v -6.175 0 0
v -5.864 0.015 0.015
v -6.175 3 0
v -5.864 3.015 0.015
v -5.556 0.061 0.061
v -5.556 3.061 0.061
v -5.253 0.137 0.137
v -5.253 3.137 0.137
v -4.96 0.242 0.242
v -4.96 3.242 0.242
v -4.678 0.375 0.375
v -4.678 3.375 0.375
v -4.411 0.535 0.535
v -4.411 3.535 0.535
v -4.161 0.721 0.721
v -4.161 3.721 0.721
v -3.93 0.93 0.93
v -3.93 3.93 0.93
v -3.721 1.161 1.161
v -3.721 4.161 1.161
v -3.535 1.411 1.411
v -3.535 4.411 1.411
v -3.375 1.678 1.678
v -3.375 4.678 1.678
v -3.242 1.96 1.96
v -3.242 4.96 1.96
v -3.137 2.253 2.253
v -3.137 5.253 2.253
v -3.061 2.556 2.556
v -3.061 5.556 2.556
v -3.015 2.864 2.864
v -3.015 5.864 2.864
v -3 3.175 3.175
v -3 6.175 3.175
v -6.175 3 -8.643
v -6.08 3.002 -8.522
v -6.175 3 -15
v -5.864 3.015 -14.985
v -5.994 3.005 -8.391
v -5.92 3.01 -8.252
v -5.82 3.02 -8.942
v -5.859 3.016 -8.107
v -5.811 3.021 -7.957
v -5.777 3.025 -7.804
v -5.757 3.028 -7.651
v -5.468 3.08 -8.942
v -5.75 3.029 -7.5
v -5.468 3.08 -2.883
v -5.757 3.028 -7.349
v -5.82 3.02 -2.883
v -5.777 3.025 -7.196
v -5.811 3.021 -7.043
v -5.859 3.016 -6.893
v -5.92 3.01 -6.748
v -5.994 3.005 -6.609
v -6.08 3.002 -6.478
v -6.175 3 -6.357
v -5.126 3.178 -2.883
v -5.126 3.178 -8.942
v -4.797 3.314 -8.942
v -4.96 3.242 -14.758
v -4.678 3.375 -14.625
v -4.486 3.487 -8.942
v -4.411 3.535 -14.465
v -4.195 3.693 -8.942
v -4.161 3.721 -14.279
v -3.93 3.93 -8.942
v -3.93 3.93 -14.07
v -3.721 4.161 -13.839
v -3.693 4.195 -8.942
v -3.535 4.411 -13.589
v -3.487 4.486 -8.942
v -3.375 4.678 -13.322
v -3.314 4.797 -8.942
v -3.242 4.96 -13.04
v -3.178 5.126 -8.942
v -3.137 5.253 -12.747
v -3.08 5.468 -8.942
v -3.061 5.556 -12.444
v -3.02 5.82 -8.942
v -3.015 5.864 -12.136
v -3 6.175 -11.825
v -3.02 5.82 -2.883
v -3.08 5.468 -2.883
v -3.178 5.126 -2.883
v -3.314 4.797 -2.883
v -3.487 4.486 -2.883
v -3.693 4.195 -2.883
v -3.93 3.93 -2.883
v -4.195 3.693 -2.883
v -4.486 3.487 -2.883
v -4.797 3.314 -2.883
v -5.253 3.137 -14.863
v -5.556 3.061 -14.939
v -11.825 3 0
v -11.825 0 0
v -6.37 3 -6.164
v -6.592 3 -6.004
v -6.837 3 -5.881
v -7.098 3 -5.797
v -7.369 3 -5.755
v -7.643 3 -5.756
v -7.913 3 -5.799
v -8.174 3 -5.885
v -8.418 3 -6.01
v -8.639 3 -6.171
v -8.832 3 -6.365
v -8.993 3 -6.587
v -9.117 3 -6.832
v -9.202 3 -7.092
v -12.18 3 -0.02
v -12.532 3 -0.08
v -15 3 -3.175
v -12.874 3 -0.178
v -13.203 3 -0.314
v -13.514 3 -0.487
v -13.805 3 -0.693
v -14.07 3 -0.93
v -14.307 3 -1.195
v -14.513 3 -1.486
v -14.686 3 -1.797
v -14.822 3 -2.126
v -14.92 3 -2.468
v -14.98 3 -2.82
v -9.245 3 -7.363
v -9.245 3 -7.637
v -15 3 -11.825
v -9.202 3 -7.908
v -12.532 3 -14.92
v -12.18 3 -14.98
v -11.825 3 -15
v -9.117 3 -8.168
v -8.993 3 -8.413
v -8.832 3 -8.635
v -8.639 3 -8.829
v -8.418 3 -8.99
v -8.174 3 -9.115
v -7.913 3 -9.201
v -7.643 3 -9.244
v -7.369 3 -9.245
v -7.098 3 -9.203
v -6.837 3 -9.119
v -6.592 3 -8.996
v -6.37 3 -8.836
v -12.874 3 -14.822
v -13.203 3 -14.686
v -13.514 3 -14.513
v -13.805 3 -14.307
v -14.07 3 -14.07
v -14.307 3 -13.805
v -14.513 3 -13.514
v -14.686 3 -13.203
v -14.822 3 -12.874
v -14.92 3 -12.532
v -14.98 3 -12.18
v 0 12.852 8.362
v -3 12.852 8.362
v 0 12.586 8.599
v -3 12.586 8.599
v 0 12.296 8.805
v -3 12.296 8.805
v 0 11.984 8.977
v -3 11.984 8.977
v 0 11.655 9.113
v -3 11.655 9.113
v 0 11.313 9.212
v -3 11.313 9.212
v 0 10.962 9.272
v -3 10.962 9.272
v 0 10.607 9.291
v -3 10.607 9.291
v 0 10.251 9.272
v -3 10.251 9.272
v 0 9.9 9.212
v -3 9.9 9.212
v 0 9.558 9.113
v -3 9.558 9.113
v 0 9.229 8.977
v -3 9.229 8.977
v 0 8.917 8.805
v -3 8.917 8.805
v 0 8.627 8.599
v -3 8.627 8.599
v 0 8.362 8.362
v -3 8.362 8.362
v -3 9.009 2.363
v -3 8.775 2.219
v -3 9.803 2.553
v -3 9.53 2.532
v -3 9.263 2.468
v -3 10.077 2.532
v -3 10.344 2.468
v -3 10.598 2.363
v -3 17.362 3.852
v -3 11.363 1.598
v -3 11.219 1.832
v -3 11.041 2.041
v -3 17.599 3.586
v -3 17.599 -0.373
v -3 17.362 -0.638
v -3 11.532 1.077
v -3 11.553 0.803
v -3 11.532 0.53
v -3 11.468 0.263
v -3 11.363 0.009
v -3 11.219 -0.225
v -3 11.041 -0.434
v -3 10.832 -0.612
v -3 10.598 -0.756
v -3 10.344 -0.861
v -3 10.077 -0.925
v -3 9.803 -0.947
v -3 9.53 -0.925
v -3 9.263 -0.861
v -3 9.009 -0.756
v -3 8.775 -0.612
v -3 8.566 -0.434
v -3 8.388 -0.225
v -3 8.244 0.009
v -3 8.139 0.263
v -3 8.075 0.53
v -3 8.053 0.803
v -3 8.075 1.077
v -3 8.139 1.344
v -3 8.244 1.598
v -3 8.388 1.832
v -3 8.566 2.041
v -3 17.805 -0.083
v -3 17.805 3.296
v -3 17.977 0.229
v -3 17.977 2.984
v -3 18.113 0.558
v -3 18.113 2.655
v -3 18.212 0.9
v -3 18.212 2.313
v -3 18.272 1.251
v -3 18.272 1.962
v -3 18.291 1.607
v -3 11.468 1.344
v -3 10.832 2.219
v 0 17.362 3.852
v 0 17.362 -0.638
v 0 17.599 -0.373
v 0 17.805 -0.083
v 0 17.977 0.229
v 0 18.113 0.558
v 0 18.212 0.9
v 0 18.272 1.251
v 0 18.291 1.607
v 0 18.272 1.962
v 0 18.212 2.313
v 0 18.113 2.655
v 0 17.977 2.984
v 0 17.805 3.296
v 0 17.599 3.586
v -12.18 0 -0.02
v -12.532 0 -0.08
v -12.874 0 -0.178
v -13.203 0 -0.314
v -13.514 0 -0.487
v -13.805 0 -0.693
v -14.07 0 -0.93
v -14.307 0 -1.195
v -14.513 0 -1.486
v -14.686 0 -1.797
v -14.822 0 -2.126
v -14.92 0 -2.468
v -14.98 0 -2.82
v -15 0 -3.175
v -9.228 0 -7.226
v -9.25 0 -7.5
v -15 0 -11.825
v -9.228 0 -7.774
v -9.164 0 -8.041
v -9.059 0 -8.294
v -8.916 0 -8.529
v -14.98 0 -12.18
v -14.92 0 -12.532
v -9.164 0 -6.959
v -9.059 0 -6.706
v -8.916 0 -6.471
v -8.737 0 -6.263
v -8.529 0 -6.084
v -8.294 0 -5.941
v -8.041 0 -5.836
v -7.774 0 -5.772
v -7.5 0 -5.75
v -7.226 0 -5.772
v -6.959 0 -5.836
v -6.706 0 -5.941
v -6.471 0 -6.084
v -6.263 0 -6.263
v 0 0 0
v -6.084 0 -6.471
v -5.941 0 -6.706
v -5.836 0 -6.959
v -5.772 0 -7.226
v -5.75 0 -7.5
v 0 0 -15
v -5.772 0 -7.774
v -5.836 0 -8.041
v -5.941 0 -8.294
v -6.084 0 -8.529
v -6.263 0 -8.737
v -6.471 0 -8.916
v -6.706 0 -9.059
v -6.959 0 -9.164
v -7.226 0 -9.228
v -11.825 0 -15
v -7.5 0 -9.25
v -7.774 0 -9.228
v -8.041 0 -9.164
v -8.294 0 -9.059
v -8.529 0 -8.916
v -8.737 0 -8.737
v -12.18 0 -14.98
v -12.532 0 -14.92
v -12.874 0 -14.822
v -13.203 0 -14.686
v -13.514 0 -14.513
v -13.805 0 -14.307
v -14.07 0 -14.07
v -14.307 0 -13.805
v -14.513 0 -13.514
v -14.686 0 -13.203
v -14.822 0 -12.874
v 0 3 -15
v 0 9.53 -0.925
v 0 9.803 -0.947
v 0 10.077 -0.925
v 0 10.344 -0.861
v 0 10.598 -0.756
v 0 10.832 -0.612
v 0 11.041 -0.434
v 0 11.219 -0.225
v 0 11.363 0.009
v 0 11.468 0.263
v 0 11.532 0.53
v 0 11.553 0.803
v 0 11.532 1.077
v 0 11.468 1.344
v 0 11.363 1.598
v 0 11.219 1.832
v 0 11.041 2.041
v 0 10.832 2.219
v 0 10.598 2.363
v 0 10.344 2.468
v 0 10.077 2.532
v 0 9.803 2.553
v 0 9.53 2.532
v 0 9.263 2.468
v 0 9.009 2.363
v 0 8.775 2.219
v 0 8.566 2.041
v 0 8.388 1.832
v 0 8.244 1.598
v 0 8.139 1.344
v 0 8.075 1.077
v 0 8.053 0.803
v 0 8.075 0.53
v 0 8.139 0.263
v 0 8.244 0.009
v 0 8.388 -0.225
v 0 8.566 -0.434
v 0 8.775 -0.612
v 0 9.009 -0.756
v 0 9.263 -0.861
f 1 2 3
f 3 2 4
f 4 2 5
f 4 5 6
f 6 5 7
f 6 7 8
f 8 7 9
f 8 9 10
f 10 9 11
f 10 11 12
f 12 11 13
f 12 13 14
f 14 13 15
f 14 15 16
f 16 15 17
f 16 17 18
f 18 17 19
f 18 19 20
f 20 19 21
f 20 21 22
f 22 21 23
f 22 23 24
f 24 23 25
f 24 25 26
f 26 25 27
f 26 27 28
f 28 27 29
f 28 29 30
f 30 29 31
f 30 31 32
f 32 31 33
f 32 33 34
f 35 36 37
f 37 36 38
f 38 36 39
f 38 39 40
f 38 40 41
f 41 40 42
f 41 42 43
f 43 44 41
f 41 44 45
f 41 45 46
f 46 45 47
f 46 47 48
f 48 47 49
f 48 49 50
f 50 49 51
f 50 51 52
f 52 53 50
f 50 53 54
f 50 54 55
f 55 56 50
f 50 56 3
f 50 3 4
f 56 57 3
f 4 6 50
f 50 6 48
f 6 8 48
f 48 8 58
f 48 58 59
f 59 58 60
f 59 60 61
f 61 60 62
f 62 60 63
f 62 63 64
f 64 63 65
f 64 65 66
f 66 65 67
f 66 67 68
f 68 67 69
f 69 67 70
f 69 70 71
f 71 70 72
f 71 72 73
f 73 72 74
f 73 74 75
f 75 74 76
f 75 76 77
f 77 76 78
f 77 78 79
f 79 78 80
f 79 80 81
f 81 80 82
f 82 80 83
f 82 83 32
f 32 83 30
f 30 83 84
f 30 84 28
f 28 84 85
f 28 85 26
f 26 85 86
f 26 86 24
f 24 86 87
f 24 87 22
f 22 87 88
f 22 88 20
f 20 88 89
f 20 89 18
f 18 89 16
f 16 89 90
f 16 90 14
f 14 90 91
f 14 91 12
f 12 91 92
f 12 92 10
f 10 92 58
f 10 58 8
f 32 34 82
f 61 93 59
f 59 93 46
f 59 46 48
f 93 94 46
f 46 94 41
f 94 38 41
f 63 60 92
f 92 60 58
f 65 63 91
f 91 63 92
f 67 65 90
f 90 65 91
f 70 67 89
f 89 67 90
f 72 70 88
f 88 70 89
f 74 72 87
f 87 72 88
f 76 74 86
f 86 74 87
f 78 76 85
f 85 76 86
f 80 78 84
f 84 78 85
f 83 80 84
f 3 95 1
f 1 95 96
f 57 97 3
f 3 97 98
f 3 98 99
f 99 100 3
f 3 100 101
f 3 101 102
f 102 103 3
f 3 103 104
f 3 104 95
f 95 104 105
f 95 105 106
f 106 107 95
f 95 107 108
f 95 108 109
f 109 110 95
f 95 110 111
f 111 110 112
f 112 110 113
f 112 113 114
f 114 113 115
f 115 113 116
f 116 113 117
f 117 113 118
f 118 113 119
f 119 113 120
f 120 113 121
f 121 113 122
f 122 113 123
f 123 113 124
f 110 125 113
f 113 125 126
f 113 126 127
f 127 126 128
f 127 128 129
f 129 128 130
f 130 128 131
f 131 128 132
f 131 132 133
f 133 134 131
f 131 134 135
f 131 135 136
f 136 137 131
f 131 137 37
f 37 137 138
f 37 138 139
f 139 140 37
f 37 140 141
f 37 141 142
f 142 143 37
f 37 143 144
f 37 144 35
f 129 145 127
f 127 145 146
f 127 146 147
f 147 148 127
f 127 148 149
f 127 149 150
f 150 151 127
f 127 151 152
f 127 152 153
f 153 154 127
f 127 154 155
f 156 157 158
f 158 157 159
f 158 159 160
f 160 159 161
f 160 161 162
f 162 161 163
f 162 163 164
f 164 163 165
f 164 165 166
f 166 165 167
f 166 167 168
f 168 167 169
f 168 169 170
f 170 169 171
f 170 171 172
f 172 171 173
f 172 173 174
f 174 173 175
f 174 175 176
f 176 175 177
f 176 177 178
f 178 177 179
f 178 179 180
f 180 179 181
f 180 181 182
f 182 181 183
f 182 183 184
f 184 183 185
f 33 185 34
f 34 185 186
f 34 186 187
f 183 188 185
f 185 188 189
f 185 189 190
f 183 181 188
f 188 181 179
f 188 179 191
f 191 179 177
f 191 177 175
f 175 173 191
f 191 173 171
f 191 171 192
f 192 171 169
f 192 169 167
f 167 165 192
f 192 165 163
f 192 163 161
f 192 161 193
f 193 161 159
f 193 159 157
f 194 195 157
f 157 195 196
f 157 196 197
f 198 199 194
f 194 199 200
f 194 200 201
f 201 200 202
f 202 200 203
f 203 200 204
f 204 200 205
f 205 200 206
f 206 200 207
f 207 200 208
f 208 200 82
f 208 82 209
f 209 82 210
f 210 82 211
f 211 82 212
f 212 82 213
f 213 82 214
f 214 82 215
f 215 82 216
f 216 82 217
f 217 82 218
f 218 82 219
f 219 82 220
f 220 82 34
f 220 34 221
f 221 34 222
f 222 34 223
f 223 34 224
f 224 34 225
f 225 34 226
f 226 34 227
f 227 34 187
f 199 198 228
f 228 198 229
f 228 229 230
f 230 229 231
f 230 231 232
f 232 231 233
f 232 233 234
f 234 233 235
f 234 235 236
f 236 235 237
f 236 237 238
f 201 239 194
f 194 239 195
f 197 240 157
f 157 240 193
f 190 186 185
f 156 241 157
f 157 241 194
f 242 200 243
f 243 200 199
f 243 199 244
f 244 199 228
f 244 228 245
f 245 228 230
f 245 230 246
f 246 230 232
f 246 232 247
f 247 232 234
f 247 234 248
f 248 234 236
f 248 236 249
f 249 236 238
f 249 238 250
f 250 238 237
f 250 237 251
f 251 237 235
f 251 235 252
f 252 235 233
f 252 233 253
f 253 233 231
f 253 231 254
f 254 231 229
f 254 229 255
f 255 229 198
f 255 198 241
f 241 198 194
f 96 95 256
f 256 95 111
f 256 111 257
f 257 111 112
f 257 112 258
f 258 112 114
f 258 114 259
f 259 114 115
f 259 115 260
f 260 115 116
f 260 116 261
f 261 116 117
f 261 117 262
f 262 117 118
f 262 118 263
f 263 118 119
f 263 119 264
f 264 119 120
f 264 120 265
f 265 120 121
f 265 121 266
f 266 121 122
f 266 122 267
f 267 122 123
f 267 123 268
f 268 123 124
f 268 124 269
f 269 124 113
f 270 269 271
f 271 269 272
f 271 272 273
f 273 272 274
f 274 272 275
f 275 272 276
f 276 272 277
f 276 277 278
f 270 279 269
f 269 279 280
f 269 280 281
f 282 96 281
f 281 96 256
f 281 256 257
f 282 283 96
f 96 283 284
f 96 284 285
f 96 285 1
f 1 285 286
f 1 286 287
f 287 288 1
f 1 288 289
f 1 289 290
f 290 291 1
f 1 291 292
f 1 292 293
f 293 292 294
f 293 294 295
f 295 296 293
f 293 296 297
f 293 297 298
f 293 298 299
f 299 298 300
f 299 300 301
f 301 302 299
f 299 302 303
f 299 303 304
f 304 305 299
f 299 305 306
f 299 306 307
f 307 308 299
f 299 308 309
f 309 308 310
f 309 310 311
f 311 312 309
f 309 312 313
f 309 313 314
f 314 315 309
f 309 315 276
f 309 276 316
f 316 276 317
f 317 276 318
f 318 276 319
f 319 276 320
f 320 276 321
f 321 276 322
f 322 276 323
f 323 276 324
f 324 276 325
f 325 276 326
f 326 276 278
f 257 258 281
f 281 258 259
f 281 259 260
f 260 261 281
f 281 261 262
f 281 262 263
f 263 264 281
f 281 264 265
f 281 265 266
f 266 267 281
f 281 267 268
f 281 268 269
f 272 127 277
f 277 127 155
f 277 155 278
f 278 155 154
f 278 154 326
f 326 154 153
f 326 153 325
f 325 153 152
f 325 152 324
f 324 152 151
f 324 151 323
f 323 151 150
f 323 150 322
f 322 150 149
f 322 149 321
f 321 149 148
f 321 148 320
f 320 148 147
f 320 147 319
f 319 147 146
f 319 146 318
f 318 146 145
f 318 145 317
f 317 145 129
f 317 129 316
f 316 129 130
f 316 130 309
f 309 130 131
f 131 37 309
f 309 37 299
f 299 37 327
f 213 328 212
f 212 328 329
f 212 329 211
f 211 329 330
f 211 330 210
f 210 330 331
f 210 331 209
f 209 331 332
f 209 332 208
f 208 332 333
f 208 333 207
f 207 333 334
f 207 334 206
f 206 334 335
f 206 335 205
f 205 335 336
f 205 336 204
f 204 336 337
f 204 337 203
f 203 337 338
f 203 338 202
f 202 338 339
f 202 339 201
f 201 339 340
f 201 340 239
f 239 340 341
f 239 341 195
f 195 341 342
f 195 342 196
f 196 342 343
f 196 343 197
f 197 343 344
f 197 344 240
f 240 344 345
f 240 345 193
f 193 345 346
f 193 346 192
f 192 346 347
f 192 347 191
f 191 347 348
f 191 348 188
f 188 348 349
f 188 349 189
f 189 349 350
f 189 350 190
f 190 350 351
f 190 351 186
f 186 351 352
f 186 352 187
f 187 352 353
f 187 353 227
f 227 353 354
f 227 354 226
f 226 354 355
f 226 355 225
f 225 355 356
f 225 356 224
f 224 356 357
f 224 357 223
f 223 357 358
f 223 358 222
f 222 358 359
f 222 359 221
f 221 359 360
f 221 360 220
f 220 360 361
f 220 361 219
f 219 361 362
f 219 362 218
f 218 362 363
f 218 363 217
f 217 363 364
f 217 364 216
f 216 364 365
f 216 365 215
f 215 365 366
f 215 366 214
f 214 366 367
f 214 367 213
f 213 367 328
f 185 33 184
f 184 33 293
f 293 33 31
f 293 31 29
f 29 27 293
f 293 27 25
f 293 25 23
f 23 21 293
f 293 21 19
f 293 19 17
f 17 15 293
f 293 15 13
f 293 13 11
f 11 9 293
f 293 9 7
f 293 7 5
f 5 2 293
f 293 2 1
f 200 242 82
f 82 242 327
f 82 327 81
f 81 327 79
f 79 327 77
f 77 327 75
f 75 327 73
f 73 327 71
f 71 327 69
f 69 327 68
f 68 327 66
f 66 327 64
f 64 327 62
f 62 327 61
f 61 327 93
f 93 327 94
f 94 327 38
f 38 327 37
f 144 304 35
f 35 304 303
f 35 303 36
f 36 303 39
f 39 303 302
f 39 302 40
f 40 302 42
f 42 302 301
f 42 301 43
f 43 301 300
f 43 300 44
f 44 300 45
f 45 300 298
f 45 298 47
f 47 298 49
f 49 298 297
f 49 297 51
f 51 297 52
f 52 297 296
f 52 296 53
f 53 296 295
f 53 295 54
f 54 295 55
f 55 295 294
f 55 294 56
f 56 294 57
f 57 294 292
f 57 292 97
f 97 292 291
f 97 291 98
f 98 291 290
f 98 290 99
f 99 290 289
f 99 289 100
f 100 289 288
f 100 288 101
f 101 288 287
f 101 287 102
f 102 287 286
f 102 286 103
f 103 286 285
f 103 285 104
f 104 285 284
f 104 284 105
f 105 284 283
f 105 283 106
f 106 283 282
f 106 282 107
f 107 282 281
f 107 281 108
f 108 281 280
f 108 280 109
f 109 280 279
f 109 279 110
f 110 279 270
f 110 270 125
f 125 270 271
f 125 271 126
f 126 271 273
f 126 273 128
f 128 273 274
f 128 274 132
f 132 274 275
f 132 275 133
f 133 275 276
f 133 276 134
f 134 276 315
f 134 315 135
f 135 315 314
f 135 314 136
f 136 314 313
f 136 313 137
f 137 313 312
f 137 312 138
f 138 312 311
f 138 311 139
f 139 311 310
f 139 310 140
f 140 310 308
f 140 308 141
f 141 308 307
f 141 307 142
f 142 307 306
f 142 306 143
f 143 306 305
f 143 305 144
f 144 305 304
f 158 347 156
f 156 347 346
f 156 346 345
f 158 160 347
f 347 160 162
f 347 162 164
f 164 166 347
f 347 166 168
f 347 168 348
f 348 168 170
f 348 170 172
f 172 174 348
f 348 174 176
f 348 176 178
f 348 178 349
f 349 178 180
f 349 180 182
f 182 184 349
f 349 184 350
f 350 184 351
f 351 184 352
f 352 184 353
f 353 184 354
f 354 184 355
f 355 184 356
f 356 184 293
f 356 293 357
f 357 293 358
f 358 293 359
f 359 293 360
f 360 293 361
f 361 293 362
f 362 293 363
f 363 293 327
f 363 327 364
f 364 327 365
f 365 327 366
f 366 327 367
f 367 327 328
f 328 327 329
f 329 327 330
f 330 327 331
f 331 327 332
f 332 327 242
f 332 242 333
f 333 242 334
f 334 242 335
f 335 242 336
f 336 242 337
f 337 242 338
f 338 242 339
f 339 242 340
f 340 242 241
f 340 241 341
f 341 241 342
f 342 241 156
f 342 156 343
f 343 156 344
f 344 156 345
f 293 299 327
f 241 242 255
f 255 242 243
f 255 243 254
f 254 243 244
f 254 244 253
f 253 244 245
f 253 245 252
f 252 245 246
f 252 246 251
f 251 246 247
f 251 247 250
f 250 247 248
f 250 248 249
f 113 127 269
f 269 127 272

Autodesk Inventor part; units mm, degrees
ref_plane "YZ Plane" through (0, 0, 0) normal (1, 0, 0) x (0, 1, 0)
ref_plane "XZ Plane" through (0, 0, 0) normal (0, 1, 0) x (-1, 0, 0)
ref_plane "XY Plane" through (0, 0, 0) normal (0, 0, 1) x (1, 0, 0)
sketch "Sketch1" plane through (0, 0, 0) normal (0, 1, 0) x (-1, 0, 0)
  line L0 (0, 0) -> (15, 0)
  line L1 (15, 0) -> (15, -15)
  line L2 (15, -15) -> (0, -15)
  line L3 (0, -15) -> (0, 0)
  circle A0 centre (7.5, -7.5) radius 1.75
  dimension "d0" = 15
  dimension "d1" = 15
  dimension "d2" = 3.5
extrude "Extrusion1" add sketch "Sketch1" along normal blind 3
sketch "Sketch2" plane through (0, 0, 0) normal (1, 0, 0) x (0, 0, -1)
  line L0 (15, 0) -> (0, 0) projected
  line L1 (0, 0) -> (-10.6066, 10.6066)
  line L2 (0, 0) -> (15, 0) construction
  line L3 (15, 0) -> (40.6066, 0) construction
  line L4 (-3.1066, 18.1066) -> (-10.6066, 10.6066)
  line L5 (15, 3) -> (0, 3) projected
  line L6 (15, 3) -> (-1.6066, 19.6066)
  line L7 (15, 3) -> (38.4853, 3) construction
  line L8 (-1.6066, 19.6066) -> (-3.1066, 18.1066)
  line L9 (-1.6066, 19.6066) -> (-10.6066, 10.6066) construction
  line L10 (-6.1066, 15.1066) -> (7.5, 1.5) construction
  circle A0 centre (-0.8033, 9.8033) radius 1.75
  line L11 (15, 3) -> (15, 0)
  line L12 (0, 0) -> (15, 0)
  line L13 (15, 3) -> (-1.6066, 19.6066)
  line L14 (-1.6066, 19.6066) -> (-10.6066, 10.6066)
  line L15 (-10.6066, 10.6066) -> (0, 0)
  dimension "d5" = 15
  dimension "d6" = 135
  dimension "d10" = 135
  dimension "d12" = 3.5
  dimension "d13" = 7.5
extrude "Extrusion3" add sketch "Sketch2" against normal blind 3
fillet "Fillet1" radius 3.175 4 edges at (-15, 1.5, -15) (-15, 1.5, 0) (-1.5, 19.6066, 1.6066) (-1.5, 10.6066, 10.6066)
fillet "Fillet2" radius 3.175 2 edges at (-3, 3, -7.5) (-3, 1.5, 0)
properties part number "45 degree inside angle bracket_3DPrint"
